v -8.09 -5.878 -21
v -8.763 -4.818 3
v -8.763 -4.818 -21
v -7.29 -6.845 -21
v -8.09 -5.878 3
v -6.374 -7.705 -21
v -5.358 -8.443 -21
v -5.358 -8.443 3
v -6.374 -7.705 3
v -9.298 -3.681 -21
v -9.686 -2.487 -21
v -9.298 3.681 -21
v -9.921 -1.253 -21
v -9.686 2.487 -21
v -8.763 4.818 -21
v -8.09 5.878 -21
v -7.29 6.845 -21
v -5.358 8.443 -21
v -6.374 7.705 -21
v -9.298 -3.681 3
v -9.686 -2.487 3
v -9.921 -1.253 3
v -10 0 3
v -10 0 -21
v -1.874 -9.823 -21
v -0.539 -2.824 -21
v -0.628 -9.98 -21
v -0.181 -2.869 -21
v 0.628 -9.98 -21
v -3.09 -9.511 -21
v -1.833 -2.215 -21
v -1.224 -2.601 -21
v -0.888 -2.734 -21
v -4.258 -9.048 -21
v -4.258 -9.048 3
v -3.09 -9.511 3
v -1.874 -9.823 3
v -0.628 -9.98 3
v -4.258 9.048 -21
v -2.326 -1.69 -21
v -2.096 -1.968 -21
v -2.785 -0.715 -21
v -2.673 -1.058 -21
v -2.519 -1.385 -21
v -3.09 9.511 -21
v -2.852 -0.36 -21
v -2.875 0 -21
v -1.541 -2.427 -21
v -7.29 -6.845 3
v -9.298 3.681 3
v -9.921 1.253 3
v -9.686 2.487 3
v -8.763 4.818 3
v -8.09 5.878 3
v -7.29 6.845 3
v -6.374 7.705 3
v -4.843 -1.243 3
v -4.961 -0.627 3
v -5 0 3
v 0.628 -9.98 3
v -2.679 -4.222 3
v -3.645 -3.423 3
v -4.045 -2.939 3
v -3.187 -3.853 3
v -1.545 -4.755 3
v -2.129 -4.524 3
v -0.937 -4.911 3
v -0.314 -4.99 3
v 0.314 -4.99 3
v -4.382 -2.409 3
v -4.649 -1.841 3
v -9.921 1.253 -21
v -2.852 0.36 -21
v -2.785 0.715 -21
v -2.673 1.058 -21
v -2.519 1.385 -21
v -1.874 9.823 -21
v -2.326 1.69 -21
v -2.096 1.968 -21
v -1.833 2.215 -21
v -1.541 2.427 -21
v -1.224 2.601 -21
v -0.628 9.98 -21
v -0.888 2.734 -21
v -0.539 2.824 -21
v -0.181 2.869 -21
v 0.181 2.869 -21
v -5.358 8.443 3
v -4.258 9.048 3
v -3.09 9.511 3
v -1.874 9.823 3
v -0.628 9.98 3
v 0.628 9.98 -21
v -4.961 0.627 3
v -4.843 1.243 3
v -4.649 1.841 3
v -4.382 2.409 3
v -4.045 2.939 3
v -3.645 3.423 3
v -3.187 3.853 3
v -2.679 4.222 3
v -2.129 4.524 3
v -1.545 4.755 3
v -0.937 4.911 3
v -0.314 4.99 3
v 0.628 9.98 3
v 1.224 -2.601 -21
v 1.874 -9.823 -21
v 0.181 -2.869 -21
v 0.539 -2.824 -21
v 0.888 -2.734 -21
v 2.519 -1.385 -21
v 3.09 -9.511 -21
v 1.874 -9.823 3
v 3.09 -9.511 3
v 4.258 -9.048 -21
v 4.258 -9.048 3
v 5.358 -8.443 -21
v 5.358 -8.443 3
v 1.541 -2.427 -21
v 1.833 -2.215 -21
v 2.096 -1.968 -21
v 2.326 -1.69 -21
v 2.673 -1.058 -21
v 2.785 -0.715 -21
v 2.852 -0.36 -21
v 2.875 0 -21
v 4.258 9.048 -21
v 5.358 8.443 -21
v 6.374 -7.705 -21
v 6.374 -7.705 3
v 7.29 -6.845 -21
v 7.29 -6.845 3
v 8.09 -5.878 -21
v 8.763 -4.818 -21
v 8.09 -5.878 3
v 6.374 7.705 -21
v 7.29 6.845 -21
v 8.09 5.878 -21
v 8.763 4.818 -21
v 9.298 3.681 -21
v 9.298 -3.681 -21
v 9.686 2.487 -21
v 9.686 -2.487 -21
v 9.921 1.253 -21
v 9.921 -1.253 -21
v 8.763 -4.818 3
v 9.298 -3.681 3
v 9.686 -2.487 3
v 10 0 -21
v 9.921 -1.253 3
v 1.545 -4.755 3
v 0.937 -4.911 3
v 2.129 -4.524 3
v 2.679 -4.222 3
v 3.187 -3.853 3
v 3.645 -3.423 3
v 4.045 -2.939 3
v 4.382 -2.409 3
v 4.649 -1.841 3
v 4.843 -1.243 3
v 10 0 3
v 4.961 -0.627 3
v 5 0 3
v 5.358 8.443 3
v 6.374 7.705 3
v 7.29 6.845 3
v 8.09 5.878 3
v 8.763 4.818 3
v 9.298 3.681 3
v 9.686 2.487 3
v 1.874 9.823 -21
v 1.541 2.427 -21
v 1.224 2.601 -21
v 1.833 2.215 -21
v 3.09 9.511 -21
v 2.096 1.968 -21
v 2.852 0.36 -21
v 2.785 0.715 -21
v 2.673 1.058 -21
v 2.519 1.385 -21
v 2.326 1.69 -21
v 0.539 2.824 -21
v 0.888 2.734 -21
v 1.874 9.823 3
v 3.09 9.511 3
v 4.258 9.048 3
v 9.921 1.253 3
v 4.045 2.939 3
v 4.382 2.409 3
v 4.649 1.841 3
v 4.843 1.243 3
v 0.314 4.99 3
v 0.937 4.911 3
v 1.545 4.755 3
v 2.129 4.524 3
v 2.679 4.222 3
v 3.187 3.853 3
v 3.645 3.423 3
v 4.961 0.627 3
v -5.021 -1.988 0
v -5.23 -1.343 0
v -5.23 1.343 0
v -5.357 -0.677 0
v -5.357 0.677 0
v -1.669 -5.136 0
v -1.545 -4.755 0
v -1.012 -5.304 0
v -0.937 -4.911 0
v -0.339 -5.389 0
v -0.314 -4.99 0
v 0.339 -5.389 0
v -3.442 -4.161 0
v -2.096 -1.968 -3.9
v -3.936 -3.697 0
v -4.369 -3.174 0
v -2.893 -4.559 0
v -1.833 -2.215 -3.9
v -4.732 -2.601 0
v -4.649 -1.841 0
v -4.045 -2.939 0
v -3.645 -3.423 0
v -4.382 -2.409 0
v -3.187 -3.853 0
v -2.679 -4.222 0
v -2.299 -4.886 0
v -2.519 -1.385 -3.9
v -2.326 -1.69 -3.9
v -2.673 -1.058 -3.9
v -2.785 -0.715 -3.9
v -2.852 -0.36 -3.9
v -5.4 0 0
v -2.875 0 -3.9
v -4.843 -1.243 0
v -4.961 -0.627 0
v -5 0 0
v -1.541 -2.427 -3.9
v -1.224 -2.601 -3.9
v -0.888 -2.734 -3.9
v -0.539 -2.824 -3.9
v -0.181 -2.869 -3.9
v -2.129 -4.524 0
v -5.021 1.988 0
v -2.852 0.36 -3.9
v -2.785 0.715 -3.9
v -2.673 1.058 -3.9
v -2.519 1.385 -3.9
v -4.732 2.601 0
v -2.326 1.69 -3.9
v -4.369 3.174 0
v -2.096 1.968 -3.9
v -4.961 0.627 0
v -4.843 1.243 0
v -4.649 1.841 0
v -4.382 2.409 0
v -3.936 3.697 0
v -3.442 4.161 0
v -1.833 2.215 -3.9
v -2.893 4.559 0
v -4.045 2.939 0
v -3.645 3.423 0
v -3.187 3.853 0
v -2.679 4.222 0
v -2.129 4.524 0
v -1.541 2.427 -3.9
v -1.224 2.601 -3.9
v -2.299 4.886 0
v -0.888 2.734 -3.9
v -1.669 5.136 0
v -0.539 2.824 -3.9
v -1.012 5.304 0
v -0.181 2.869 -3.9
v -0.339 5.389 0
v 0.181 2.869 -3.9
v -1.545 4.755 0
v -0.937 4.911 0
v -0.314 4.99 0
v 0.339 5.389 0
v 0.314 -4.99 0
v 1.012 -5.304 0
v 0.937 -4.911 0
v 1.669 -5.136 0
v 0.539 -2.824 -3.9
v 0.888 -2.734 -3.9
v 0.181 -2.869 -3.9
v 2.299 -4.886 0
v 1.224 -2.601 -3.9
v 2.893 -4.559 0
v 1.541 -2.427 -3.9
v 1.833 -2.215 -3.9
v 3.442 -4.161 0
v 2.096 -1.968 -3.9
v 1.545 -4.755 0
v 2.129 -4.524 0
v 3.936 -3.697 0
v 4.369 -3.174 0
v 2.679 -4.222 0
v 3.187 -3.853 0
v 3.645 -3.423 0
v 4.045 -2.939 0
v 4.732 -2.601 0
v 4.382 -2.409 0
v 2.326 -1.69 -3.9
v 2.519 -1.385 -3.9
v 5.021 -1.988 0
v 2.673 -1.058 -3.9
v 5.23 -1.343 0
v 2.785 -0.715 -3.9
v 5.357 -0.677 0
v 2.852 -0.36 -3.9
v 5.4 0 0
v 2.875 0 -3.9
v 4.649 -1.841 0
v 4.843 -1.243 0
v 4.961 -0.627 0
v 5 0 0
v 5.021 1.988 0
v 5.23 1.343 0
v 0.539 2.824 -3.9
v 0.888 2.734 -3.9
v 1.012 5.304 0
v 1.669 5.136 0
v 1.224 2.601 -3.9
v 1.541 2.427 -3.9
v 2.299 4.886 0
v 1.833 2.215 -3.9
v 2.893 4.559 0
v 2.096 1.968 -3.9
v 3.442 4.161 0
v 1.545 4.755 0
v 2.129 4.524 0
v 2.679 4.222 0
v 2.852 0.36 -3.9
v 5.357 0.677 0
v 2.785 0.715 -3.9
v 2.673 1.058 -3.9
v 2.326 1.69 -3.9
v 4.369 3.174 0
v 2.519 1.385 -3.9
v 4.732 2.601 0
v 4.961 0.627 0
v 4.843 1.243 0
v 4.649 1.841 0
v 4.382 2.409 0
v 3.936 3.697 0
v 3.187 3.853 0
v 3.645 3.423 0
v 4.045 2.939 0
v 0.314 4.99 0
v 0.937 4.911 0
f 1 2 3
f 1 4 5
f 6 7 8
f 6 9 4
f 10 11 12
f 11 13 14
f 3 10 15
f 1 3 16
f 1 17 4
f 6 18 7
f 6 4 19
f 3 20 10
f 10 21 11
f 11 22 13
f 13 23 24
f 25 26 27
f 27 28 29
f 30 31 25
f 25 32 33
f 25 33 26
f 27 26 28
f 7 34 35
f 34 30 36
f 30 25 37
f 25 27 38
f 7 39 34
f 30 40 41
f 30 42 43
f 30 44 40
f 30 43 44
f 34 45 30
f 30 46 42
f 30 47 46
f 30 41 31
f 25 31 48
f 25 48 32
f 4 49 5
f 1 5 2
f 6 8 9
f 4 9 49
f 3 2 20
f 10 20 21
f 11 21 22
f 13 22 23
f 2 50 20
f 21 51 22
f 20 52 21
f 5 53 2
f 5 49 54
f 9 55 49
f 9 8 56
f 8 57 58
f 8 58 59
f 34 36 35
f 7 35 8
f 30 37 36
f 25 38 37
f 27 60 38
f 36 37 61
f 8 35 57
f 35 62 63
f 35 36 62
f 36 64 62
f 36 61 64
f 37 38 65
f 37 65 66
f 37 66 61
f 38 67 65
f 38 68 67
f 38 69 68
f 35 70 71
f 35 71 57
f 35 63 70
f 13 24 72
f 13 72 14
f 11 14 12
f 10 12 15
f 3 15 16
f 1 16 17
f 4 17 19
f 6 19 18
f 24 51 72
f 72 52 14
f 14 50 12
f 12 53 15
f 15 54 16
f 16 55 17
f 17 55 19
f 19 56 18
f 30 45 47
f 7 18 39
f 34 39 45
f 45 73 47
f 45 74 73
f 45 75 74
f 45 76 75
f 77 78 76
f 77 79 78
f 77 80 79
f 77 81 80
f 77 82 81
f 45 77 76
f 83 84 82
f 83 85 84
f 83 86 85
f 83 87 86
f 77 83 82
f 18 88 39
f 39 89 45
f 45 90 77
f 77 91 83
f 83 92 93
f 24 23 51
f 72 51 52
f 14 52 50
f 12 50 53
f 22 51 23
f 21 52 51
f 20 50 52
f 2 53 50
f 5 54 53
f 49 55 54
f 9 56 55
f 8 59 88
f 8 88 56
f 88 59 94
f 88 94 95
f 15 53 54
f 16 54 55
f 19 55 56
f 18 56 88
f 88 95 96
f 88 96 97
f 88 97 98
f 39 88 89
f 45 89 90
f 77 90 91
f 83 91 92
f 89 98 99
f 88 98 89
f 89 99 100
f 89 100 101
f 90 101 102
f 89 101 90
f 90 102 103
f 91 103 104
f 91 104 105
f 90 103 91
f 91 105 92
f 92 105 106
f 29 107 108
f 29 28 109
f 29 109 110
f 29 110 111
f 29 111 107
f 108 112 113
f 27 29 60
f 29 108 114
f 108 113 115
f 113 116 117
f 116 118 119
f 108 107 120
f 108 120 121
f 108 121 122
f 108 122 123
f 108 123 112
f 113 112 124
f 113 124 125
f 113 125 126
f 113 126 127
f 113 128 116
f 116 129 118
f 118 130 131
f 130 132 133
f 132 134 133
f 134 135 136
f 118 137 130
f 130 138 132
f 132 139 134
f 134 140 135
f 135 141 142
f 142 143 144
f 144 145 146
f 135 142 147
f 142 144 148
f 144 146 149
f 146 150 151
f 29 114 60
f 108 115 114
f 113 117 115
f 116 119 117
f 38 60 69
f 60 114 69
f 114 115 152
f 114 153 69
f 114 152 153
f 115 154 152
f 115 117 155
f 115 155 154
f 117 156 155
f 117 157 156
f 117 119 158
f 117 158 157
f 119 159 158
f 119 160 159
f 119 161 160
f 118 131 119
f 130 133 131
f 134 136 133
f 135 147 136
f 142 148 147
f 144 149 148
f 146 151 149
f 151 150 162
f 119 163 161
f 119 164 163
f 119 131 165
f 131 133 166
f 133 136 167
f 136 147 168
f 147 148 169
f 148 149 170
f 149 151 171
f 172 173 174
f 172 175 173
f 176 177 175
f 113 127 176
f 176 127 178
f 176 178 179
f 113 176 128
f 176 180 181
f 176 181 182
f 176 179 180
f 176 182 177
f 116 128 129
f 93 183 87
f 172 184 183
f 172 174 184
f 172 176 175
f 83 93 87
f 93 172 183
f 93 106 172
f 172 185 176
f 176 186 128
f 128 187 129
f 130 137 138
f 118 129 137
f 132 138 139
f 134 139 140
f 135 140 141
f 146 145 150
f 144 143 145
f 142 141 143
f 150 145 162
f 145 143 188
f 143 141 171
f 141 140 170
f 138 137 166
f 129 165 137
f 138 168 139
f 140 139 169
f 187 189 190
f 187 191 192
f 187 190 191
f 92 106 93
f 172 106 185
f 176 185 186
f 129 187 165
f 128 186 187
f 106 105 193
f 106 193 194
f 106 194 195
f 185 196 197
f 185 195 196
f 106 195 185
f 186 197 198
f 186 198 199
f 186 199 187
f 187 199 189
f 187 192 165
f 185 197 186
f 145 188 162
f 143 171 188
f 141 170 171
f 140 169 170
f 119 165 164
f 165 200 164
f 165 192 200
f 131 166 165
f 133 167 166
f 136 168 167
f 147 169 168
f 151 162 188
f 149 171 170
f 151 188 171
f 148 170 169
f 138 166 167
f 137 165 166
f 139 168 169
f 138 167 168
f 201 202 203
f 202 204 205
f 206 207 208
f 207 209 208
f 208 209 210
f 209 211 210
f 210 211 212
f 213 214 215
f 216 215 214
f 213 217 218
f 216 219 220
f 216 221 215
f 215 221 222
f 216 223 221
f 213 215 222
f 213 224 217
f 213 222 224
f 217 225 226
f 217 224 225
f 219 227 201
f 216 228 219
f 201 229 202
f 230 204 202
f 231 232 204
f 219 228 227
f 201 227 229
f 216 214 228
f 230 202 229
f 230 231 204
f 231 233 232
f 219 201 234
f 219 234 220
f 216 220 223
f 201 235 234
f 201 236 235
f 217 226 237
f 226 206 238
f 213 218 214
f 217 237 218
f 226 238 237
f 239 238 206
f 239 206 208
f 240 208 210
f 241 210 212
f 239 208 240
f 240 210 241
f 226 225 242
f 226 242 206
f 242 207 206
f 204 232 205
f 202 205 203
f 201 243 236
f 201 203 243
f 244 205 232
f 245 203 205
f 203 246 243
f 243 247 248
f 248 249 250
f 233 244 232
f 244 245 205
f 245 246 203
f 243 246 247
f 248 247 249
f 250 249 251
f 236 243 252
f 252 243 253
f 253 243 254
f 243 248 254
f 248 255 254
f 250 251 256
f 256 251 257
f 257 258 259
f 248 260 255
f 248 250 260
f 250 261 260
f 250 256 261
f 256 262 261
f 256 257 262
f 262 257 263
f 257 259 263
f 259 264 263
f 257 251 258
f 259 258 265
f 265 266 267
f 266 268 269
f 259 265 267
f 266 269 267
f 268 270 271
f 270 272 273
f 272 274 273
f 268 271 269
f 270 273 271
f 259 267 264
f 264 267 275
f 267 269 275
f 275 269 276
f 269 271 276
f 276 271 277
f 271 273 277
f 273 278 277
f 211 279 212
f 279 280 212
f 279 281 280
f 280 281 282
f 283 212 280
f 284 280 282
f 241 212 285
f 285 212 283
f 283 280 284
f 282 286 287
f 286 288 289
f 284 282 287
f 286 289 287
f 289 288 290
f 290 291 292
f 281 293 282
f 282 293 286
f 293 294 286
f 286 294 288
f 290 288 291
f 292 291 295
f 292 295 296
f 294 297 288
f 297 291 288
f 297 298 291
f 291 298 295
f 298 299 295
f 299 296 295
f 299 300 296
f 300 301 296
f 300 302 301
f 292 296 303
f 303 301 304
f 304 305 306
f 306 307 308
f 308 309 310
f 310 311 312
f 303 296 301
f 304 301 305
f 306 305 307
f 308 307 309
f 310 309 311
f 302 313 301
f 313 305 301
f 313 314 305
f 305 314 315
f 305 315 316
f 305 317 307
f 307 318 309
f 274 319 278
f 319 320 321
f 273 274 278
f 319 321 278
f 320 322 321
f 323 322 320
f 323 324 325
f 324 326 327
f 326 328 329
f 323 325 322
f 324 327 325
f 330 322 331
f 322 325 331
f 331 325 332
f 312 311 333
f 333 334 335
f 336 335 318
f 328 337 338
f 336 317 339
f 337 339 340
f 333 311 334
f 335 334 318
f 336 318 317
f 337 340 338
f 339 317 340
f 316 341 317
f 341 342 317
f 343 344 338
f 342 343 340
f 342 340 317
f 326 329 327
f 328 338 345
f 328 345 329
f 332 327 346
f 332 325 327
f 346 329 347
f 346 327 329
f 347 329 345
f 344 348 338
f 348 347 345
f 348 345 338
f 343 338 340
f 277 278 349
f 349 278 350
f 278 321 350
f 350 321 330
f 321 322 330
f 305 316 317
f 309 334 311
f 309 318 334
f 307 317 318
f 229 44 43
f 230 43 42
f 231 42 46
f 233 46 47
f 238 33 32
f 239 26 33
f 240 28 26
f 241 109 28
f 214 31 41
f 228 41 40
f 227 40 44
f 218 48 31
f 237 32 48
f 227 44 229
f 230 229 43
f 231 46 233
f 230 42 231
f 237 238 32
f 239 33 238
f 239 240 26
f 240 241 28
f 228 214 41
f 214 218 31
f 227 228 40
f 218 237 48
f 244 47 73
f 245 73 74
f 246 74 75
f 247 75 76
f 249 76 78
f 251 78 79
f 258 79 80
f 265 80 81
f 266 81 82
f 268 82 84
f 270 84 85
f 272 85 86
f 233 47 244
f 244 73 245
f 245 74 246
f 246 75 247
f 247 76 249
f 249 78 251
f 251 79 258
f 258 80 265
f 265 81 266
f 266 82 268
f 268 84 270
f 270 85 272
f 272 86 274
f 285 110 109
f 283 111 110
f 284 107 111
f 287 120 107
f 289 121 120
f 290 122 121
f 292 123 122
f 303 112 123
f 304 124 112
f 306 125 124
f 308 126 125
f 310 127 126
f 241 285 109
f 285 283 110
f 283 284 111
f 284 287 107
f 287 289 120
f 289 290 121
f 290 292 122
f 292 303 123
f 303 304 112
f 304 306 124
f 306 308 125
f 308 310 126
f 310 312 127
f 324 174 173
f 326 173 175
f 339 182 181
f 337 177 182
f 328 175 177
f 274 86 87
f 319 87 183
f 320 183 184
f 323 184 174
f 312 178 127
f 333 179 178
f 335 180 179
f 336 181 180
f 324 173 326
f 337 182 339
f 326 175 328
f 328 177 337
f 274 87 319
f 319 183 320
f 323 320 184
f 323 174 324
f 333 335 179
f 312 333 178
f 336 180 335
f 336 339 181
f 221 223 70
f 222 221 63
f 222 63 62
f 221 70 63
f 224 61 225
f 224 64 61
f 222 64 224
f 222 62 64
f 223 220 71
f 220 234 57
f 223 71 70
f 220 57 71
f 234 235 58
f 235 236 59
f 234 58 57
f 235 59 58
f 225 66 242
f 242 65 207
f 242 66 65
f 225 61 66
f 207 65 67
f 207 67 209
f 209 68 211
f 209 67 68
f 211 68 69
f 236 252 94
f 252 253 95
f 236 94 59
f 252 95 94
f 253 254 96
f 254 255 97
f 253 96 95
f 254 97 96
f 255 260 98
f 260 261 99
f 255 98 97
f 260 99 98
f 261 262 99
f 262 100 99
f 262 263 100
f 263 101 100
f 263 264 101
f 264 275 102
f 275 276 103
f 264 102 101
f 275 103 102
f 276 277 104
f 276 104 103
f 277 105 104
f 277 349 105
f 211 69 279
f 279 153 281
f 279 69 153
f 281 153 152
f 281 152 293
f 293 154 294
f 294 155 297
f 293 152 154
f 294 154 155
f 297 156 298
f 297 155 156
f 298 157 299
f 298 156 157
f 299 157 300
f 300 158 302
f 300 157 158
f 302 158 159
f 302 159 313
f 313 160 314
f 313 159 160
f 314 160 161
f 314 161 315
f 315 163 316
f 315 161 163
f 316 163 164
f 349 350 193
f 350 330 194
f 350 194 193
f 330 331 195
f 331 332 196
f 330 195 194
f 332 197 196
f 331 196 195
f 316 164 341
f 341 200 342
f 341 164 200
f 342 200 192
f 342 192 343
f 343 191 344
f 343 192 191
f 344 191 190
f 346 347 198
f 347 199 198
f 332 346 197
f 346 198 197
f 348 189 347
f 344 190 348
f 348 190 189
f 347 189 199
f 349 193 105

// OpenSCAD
$fn = 50;


difference() {
	union() {
		translate(v = [0, 0, -21.0000000000]) {
			cylinder(h = 24, r = 10.0000000000);
		}
		#translate(v = [0, 0, -24.0000000000]) {
			cylinder(h = 24, r = 2.8750000000);
		}
	}
	union() {
		translate(v = [0, 0, 0]) {
			rotate(a = [0, 0, 0]) {
				difference() {
					union() {
						translate(v = [0, 0, -24.0000000000]) {
							cylinder(h = 24, r = 2.6000000000);
						}
						translate(v = [0, 0, -3.9000000000]) {
							cylinder(h = 3.9000000000, r1 = 2.8750000000, r2 = 5.4000000000);
						}
						translate(v = [0, 0, -24.0000000000]) {
							cylinder(h = 24, r = 2.8750000000);
						}
						translate(v = [0, 0, -24.0000000000]) {
							cylinder(h = 24, r = 2.6000000000);
						}
					}
					union();
				}
			}
		}
		#cylinder(h = 3, r = 5.0000000000);
	}
}
